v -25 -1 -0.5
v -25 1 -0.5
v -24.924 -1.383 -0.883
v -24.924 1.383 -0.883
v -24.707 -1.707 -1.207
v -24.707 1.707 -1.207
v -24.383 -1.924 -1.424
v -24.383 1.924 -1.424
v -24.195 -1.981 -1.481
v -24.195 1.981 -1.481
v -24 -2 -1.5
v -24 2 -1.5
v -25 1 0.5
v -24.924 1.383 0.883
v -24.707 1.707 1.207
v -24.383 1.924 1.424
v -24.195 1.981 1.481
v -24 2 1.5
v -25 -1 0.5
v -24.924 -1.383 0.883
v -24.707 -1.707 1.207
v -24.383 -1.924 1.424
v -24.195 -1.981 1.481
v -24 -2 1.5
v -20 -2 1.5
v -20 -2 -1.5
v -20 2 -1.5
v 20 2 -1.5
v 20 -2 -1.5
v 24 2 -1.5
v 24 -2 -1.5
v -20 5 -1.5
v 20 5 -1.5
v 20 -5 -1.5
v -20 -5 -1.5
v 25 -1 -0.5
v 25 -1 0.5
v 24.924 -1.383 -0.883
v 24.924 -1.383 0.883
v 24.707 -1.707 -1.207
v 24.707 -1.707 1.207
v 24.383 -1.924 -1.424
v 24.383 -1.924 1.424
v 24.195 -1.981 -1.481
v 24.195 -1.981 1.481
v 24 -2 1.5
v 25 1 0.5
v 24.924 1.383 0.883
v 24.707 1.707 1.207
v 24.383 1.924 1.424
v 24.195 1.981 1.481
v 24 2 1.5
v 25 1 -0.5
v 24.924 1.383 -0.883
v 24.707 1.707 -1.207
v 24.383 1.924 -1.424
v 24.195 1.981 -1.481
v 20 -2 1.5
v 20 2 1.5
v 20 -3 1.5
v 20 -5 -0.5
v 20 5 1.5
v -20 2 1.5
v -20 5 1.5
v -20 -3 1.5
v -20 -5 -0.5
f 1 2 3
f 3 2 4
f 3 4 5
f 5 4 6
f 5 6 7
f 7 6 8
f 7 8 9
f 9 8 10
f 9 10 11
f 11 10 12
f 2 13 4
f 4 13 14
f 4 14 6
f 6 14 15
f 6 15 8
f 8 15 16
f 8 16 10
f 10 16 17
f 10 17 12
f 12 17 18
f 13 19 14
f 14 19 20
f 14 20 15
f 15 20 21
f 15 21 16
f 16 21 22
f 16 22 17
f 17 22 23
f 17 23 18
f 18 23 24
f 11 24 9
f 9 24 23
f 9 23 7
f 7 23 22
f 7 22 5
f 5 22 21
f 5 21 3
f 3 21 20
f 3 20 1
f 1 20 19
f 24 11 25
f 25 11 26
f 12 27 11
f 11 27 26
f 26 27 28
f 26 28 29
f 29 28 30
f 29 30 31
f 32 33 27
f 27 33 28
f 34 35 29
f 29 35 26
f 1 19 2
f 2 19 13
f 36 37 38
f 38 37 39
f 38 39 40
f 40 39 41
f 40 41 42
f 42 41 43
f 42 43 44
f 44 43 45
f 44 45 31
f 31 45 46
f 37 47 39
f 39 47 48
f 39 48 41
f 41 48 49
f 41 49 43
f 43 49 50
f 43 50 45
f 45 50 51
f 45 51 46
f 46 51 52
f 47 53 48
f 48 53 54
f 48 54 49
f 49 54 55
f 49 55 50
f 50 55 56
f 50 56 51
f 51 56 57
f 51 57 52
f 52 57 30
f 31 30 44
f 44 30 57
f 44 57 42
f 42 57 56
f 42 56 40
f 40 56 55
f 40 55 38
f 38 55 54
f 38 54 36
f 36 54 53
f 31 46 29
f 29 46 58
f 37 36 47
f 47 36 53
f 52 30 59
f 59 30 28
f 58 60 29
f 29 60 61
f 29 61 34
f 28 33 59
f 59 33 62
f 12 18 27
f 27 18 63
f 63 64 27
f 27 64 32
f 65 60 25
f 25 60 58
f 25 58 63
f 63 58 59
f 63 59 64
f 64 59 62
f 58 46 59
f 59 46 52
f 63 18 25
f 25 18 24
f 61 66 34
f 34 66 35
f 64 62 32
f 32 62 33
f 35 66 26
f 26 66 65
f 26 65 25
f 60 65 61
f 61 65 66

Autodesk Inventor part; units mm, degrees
ref_plane "YZ Plane" through (0, 0, 0) normal (1, 0, 0) x (0, 1, 0)
ref_plane "XZ Plane" through (0, 0, 0) normal (0, 1, 0) x (-1, 0, 0)
ref_plane "XY Plane" through (0, 0, 0) normal (0, 0, 1) x (1, 0, 0)
sketch "スケッチ1" plane through (0, 0, 0) normal (0, 0, 1) x (1, 0, 0)
  line L0 (-20, -5) -> (20, -5)
  line L1 (20, -5) -> (20, 5)
  line L2 (20, 5) -> (-20, 5)
  line L3 (-20, 5) -> (-20, -5)
  line L4 (-20, -5) -> (20, 5) construction
  line L5 (20, -5) -> (-20, 5) construction
  point P0 (0, 0)
  dimension "d0" = 40
  dimension "d1" = 10
extrude "押し出し1" add sketch "スケッチ1" along normal mid plane 3
sketch "スケッチ2" plane through (-20, -5, 1.5) normal (-1, 0, 0) x (0, 0, 1)
  line L0 (0, 0) -> (0, 10) projected
  line L1 (-3, 3) -> (0, 3)
  line L2 (0, 3) -> (0, 7)
  line L3 (0, 7) -> (-3, 7)
  line L4 (-3, 7) -> (-3, 3)
  line L5 (-3, 3) -> (0, 7) construction
  line L6 (0, 3) -> (-3, 7) construction
  point P0 (-1.5, 5)
  dimension "d4" = 4
extrude "押し出し2" add sketch "スケッチ2" along normal blind 5
sketch "スケッチ3" plane through (20, -5, 1.5) normal (1, 0, 0) x (0, 0, -1)
  line L0 (3, 7) -> (0, 7) projected
  line L1 (0, 3) -> (3, 3) projected
  line L2 (3, 10) -> (0, 10) projected
  line L3 (0, 0) -> (0, 10) projected
  line L4 (0, 0) -> (3, 0) projected
  line L5 (3, 10) -> (3, 0) projected
  point P0 (1.5, 5)
extrude "押し出し3" add sketch "スケッチ3" along normal blind 5 contours L5 L1 L3 L0
fillet "フィレット1" radius 1 8 edges at (25, 2, 0) (25, 0, 1.5) (25, 0, -1.5) (25, -2, 0) (-25, 0, 1.5) (-25, 0, -1.5) (-25, 2, 0) (-25, -2, 0)
chamfer "面取り1" distance 2 angle 45 1 edges at (0, -5, 1.5)
properties part number "刃"
